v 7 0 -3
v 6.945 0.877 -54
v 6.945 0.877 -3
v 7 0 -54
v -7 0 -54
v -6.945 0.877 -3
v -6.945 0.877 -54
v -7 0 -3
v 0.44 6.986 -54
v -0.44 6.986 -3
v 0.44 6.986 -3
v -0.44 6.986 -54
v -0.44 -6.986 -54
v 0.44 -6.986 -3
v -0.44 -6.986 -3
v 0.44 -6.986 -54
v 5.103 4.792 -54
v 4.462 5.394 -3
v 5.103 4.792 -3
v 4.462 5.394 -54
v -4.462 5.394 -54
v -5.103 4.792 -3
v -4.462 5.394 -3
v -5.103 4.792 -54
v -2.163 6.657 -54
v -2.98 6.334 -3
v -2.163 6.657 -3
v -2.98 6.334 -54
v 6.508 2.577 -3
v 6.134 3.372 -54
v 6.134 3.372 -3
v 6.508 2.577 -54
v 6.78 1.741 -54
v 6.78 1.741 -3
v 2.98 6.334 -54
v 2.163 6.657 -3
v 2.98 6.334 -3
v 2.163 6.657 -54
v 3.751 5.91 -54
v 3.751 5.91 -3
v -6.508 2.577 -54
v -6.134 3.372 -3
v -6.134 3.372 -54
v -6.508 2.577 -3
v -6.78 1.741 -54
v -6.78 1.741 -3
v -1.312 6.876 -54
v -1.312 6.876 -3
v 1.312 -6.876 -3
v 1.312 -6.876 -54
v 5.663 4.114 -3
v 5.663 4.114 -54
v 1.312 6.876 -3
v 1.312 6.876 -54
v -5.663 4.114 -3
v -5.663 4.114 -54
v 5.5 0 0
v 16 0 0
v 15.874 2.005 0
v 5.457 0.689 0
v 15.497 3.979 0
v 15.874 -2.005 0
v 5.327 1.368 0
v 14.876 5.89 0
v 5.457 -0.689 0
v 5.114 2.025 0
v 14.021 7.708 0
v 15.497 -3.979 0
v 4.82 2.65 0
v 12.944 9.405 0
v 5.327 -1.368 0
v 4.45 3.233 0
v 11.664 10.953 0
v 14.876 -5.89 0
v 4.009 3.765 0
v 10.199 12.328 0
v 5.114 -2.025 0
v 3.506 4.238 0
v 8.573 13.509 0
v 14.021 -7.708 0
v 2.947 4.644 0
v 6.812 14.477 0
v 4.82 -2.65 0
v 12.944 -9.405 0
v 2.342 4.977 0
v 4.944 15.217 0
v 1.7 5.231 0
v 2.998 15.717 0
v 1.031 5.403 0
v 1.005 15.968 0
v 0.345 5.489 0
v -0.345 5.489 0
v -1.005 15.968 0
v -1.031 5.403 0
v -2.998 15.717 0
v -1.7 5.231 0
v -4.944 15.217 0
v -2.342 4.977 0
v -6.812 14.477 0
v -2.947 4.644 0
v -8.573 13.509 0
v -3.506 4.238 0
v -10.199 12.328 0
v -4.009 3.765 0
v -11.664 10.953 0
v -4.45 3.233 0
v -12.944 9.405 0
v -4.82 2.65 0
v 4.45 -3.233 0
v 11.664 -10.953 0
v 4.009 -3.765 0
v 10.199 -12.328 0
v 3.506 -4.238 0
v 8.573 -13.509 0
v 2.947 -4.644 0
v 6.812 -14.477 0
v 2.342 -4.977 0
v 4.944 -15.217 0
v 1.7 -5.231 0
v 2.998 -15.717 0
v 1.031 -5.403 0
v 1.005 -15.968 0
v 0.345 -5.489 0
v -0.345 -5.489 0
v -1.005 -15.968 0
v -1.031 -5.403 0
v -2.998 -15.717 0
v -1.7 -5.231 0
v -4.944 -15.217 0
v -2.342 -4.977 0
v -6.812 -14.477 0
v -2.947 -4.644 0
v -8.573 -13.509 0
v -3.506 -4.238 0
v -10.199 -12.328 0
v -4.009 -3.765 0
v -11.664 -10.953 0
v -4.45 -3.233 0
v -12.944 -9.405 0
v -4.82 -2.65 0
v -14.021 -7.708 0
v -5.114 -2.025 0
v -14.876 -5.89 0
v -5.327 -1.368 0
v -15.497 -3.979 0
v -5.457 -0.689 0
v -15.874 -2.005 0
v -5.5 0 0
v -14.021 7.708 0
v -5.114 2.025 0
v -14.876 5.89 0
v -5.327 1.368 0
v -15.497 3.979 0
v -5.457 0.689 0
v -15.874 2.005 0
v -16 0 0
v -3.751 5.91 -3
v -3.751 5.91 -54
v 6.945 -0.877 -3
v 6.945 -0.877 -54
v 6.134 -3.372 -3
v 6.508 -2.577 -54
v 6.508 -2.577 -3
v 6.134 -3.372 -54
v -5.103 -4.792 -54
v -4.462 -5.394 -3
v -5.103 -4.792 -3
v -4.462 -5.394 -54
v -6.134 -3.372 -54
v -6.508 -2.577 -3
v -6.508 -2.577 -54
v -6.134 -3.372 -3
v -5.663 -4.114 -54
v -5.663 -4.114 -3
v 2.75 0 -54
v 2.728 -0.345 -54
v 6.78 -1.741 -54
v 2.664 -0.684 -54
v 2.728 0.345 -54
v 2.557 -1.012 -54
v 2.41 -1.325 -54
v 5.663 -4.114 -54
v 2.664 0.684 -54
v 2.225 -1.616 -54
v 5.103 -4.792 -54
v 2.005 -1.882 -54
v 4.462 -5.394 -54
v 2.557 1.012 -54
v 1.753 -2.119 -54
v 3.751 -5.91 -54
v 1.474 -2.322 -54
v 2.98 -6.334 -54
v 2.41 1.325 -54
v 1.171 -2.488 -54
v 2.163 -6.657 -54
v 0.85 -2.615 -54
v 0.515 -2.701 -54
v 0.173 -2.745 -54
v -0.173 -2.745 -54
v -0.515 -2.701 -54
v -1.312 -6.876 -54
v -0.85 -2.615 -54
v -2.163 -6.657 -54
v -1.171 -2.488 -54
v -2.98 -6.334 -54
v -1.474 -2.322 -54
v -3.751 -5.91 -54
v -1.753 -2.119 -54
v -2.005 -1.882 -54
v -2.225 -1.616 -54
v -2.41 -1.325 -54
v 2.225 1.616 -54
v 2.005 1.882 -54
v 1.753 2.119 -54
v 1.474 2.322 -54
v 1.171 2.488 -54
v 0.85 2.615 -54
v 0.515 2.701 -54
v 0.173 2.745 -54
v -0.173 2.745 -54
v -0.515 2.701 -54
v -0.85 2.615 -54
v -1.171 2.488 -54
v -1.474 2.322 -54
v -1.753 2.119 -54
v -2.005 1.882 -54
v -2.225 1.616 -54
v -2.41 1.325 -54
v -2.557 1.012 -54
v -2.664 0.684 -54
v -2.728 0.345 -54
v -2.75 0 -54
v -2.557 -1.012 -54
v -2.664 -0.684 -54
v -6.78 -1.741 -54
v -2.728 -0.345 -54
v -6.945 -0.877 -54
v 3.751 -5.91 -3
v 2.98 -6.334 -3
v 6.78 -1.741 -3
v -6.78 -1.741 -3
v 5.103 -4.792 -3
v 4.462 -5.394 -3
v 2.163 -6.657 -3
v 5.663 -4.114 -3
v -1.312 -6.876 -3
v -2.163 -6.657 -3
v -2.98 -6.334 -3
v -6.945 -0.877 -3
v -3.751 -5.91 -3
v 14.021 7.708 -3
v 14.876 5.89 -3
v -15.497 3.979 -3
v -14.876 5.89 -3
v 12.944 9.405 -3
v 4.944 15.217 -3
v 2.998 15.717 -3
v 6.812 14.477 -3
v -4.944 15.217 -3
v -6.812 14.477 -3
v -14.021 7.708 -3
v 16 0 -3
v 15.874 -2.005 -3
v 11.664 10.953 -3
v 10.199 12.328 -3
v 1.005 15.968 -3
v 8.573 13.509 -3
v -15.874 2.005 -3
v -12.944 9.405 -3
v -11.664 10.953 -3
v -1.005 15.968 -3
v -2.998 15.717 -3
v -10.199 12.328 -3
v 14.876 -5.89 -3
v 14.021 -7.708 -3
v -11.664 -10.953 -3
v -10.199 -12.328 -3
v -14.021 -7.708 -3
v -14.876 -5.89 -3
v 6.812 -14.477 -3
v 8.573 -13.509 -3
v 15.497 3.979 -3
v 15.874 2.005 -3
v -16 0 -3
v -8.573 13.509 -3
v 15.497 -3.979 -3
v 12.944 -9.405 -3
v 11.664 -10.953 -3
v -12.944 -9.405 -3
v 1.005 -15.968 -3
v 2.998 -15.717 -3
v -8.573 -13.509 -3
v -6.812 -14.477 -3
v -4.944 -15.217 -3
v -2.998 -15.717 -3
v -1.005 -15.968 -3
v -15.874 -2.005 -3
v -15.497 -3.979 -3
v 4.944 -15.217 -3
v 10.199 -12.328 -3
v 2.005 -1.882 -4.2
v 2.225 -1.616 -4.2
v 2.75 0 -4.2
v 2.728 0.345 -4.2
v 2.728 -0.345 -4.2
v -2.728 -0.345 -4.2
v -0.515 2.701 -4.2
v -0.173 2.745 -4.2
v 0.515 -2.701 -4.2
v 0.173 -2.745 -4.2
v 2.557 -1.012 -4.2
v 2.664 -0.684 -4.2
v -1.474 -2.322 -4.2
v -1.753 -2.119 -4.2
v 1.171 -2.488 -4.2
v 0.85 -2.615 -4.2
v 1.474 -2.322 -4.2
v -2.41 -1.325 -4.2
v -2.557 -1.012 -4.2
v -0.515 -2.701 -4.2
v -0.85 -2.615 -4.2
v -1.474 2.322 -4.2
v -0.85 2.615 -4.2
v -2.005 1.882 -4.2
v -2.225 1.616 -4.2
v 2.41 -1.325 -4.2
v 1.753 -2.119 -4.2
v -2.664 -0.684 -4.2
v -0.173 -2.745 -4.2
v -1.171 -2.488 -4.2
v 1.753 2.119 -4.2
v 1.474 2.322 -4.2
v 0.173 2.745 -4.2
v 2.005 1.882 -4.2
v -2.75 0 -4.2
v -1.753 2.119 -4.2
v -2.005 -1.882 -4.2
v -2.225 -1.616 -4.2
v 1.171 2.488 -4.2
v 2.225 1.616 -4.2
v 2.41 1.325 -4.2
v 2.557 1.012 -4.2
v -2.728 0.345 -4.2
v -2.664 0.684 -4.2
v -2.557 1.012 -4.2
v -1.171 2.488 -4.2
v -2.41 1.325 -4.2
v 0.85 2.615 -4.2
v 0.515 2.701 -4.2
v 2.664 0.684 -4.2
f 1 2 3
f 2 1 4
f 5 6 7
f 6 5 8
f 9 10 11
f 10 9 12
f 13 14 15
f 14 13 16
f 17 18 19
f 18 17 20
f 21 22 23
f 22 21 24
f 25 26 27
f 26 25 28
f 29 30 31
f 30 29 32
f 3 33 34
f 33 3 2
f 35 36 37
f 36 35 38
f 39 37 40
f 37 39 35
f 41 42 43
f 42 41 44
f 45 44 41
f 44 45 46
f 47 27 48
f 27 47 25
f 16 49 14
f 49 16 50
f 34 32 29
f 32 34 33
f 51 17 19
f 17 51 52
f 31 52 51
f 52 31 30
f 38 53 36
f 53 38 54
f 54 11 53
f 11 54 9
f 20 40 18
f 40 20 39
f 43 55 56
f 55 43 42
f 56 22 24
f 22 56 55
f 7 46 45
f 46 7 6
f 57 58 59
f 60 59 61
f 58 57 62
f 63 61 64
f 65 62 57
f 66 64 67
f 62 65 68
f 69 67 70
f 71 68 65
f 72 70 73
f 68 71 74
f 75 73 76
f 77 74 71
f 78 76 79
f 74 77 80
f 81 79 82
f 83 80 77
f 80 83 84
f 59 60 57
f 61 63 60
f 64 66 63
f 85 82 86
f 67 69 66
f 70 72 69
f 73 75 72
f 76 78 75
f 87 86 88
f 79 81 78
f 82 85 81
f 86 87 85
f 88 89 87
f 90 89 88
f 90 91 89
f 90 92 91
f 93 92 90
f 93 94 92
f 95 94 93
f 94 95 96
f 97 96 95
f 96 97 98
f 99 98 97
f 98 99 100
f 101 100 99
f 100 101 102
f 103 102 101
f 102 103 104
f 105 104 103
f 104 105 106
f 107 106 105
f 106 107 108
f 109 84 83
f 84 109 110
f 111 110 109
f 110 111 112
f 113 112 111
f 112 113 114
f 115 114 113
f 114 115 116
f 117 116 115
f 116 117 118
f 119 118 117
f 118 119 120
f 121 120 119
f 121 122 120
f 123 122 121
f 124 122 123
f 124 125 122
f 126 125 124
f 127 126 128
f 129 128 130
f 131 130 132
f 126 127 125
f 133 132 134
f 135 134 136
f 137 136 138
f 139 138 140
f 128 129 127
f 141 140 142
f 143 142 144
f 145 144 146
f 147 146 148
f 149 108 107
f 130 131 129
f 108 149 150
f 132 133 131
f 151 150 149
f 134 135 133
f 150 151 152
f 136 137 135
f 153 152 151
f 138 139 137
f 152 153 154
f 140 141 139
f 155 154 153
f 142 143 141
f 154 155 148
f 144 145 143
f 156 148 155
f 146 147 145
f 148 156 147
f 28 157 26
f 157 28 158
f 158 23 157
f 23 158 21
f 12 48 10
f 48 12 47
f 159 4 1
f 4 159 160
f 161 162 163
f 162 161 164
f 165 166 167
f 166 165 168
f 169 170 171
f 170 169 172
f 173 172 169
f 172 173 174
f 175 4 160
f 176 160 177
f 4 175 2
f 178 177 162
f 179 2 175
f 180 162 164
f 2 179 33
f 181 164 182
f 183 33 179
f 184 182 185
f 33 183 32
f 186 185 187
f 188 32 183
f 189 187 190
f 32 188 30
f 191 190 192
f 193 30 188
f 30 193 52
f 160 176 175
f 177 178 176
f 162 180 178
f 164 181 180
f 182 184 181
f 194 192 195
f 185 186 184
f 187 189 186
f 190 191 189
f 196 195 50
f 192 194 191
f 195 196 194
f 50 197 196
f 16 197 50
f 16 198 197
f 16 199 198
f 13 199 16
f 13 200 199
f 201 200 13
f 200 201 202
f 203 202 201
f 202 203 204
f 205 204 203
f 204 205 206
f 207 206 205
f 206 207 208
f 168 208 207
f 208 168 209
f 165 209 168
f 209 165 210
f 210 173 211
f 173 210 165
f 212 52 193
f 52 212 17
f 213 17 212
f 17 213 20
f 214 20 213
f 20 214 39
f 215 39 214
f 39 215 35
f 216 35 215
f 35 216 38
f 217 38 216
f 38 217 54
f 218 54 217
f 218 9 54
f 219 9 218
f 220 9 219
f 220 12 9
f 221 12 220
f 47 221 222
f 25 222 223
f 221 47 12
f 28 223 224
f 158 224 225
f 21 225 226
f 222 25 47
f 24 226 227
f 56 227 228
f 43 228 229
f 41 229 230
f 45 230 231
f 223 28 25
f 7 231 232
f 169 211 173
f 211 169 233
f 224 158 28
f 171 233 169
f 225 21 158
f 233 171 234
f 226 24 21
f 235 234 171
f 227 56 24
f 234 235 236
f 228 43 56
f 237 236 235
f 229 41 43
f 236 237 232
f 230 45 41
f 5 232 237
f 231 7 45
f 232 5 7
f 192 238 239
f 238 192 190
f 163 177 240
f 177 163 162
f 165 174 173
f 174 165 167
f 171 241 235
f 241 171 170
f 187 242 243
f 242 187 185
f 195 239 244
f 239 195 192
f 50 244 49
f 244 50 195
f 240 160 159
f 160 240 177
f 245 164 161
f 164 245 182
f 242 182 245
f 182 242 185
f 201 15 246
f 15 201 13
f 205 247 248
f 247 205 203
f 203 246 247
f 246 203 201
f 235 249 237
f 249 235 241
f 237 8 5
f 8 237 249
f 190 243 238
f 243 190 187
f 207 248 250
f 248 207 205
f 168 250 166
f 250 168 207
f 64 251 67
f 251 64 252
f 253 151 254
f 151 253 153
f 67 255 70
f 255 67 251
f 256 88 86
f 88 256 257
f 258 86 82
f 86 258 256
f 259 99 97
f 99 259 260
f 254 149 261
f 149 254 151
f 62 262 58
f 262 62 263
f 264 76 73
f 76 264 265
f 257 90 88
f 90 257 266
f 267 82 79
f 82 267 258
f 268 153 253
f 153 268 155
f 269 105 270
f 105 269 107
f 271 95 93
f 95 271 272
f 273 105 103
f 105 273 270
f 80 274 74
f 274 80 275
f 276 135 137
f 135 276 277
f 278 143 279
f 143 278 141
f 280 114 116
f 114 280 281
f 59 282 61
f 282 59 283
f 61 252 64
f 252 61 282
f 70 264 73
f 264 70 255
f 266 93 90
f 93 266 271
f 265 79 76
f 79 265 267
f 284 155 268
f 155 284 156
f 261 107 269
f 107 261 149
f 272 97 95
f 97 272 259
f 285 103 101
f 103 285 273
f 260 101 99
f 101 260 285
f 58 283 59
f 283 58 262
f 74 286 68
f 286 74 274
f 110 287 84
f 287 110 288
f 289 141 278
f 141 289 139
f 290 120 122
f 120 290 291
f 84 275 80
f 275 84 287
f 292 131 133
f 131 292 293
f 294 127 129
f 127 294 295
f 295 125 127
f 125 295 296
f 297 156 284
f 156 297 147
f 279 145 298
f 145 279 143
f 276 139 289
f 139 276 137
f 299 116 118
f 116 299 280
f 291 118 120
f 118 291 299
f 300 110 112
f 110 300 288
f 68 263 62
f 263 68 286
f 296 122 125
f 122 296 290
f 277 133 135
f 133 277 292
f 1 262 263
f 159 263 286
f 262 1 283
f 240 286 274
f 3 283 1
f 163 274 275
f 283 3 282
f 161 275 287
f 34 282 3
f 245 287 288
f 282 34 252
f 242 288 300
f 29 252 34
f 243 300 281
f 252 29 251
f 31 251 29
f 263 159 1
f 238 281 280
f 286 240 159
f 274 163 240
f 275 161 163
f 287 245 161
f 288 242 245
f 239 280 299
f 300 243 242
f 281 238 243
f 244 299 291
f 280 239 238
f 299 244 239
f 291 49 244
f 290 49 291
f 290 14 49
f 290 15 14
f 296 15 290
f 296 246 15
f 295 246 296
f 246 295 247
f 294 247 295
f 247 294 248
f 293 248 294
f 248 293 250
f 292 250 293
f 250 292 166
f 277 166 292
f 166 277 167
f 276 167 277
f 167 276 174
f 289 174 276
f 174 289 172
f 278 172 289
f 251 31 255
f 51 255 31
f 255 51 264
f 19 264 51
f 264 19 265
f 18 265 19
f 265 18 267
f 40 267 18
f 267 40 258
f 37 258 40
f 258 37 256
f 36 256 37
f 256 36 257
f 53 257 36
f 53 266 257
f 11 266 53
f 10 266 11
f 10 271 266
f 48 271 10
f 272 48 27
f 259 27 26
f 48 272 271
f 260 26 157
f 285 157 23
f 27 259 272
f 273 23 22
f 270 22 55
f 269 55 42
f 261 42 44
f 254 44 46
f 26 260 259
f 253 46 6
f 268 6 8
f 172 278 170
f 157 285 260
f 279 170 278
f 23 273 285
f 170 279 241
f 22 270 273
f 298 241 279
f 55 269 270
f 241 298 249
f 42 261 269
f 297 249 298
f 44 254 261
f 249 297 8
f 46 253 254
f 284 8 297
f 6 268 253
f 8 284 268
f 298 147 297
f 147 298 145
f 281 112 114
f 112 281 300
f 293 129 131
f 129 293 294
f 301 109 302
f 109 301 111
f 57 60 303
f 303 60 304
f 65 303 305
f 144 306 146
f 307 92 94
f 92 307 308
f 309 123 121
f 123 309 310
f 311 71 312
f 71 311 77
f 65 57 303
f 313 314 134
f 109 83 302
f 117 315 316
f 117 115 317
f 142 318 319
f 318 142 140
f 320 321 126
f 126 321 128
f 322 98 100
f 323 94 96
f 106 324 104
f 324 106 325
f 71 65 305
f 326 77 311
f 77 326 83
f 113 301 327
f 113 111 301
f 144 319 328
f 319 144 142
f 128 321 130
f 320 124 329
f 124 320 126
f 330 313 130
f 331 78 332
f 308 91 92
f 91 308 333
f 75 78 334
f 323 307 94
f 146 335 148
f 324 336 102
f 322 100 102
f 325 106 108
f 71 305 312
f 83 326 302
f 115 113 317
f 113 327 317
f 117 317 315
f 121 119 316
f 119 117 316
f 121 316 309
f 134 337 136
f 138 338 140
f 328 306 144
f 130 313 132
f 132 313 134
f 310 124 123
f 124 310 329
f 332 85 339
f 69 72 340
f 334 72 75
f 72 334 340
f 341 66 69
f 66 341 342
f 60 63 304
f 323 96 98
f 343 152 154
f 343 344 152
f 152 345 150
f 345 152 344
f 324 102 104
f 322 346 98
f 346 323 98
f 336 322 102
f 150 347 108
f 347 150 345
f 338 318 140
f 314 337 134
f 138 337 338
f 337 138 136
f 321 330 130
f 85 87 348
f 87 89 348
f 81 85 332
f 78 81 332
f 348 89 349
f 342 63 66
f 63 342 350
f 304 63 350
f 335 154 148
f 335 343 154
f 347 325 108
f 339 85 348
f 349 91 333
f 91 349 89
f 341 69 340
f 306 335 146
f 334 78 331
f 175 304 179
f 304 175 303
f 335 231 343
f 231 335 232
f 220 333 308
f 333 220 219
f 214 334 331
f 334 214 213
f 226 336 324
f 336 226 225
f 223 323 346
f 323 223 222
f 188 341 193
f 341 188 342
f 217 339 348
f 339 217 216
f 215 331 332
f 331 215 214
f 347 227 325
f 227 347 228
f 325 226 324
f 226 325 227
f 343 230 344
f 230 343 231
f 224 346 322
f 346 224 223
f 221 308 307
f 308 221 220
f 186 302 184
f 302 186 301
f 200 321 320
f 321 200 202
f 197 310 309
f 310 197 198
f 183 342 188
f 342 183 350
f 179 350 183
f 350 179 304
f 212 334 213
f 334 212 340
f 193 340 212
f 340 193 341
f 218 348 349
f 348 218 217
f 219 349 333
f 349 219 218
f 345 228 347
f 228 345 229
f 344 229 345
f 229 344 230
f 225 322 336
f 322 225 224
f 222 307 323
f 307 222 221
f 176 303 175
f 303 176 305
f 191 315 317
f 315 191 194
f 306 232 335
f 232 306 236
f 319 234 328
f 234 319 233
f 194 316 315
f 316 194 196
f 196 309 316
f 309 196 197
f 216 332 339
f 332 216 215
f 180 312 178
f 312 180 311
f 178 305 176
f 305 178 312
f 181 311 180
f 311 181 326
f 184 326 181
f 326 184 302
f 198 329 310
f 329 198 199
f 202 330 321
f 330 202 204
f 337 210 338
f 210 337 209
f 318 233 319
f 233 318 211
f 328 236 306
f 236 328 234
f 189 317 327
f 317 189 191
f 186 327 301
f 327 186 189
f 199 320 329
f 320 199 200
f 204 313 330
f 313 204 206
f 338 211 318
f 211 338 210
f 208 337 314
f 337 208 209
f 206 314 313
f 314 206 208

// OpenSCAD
$fn = 50;


difference() {
	union() {
		translate(v = [0, 0, -54.0000000000]) {
			cylinder(h = 54, r = 7.0000000000);
		}
		translate(v = [0, 0, -3.0000000000]) {
			cylinder(h = 3, r = 16.0000000000);
		}
	}
	union() {
		translate(v = [0, 0, 0]) {
			rotate(a = [0, 0, 0]) {
				difference() {
					union() {
						#translate(v = [0, 0, -54.0000000000]) {
							cylinder(h = 54, r = 2.2500000000);
						}
						#translate(v = [0, 0, -4.2000000000]) {
							cylinder(h = 4.2000000000, r = 7.0000000000, r1 = 2.7500000000, r2 = 5.5000000000);
						}
						#translate(v = [0, 0, -54.0000000000]) {
							cylinder(h = 54, r = 2.7500000000);
						}
						#translate(v = [0, 0, -54.0000000000]) {
							cylinder(h = 54, r = 2.2500000000);
						}
					}
					union();
				}
			}
		}
	}
}
